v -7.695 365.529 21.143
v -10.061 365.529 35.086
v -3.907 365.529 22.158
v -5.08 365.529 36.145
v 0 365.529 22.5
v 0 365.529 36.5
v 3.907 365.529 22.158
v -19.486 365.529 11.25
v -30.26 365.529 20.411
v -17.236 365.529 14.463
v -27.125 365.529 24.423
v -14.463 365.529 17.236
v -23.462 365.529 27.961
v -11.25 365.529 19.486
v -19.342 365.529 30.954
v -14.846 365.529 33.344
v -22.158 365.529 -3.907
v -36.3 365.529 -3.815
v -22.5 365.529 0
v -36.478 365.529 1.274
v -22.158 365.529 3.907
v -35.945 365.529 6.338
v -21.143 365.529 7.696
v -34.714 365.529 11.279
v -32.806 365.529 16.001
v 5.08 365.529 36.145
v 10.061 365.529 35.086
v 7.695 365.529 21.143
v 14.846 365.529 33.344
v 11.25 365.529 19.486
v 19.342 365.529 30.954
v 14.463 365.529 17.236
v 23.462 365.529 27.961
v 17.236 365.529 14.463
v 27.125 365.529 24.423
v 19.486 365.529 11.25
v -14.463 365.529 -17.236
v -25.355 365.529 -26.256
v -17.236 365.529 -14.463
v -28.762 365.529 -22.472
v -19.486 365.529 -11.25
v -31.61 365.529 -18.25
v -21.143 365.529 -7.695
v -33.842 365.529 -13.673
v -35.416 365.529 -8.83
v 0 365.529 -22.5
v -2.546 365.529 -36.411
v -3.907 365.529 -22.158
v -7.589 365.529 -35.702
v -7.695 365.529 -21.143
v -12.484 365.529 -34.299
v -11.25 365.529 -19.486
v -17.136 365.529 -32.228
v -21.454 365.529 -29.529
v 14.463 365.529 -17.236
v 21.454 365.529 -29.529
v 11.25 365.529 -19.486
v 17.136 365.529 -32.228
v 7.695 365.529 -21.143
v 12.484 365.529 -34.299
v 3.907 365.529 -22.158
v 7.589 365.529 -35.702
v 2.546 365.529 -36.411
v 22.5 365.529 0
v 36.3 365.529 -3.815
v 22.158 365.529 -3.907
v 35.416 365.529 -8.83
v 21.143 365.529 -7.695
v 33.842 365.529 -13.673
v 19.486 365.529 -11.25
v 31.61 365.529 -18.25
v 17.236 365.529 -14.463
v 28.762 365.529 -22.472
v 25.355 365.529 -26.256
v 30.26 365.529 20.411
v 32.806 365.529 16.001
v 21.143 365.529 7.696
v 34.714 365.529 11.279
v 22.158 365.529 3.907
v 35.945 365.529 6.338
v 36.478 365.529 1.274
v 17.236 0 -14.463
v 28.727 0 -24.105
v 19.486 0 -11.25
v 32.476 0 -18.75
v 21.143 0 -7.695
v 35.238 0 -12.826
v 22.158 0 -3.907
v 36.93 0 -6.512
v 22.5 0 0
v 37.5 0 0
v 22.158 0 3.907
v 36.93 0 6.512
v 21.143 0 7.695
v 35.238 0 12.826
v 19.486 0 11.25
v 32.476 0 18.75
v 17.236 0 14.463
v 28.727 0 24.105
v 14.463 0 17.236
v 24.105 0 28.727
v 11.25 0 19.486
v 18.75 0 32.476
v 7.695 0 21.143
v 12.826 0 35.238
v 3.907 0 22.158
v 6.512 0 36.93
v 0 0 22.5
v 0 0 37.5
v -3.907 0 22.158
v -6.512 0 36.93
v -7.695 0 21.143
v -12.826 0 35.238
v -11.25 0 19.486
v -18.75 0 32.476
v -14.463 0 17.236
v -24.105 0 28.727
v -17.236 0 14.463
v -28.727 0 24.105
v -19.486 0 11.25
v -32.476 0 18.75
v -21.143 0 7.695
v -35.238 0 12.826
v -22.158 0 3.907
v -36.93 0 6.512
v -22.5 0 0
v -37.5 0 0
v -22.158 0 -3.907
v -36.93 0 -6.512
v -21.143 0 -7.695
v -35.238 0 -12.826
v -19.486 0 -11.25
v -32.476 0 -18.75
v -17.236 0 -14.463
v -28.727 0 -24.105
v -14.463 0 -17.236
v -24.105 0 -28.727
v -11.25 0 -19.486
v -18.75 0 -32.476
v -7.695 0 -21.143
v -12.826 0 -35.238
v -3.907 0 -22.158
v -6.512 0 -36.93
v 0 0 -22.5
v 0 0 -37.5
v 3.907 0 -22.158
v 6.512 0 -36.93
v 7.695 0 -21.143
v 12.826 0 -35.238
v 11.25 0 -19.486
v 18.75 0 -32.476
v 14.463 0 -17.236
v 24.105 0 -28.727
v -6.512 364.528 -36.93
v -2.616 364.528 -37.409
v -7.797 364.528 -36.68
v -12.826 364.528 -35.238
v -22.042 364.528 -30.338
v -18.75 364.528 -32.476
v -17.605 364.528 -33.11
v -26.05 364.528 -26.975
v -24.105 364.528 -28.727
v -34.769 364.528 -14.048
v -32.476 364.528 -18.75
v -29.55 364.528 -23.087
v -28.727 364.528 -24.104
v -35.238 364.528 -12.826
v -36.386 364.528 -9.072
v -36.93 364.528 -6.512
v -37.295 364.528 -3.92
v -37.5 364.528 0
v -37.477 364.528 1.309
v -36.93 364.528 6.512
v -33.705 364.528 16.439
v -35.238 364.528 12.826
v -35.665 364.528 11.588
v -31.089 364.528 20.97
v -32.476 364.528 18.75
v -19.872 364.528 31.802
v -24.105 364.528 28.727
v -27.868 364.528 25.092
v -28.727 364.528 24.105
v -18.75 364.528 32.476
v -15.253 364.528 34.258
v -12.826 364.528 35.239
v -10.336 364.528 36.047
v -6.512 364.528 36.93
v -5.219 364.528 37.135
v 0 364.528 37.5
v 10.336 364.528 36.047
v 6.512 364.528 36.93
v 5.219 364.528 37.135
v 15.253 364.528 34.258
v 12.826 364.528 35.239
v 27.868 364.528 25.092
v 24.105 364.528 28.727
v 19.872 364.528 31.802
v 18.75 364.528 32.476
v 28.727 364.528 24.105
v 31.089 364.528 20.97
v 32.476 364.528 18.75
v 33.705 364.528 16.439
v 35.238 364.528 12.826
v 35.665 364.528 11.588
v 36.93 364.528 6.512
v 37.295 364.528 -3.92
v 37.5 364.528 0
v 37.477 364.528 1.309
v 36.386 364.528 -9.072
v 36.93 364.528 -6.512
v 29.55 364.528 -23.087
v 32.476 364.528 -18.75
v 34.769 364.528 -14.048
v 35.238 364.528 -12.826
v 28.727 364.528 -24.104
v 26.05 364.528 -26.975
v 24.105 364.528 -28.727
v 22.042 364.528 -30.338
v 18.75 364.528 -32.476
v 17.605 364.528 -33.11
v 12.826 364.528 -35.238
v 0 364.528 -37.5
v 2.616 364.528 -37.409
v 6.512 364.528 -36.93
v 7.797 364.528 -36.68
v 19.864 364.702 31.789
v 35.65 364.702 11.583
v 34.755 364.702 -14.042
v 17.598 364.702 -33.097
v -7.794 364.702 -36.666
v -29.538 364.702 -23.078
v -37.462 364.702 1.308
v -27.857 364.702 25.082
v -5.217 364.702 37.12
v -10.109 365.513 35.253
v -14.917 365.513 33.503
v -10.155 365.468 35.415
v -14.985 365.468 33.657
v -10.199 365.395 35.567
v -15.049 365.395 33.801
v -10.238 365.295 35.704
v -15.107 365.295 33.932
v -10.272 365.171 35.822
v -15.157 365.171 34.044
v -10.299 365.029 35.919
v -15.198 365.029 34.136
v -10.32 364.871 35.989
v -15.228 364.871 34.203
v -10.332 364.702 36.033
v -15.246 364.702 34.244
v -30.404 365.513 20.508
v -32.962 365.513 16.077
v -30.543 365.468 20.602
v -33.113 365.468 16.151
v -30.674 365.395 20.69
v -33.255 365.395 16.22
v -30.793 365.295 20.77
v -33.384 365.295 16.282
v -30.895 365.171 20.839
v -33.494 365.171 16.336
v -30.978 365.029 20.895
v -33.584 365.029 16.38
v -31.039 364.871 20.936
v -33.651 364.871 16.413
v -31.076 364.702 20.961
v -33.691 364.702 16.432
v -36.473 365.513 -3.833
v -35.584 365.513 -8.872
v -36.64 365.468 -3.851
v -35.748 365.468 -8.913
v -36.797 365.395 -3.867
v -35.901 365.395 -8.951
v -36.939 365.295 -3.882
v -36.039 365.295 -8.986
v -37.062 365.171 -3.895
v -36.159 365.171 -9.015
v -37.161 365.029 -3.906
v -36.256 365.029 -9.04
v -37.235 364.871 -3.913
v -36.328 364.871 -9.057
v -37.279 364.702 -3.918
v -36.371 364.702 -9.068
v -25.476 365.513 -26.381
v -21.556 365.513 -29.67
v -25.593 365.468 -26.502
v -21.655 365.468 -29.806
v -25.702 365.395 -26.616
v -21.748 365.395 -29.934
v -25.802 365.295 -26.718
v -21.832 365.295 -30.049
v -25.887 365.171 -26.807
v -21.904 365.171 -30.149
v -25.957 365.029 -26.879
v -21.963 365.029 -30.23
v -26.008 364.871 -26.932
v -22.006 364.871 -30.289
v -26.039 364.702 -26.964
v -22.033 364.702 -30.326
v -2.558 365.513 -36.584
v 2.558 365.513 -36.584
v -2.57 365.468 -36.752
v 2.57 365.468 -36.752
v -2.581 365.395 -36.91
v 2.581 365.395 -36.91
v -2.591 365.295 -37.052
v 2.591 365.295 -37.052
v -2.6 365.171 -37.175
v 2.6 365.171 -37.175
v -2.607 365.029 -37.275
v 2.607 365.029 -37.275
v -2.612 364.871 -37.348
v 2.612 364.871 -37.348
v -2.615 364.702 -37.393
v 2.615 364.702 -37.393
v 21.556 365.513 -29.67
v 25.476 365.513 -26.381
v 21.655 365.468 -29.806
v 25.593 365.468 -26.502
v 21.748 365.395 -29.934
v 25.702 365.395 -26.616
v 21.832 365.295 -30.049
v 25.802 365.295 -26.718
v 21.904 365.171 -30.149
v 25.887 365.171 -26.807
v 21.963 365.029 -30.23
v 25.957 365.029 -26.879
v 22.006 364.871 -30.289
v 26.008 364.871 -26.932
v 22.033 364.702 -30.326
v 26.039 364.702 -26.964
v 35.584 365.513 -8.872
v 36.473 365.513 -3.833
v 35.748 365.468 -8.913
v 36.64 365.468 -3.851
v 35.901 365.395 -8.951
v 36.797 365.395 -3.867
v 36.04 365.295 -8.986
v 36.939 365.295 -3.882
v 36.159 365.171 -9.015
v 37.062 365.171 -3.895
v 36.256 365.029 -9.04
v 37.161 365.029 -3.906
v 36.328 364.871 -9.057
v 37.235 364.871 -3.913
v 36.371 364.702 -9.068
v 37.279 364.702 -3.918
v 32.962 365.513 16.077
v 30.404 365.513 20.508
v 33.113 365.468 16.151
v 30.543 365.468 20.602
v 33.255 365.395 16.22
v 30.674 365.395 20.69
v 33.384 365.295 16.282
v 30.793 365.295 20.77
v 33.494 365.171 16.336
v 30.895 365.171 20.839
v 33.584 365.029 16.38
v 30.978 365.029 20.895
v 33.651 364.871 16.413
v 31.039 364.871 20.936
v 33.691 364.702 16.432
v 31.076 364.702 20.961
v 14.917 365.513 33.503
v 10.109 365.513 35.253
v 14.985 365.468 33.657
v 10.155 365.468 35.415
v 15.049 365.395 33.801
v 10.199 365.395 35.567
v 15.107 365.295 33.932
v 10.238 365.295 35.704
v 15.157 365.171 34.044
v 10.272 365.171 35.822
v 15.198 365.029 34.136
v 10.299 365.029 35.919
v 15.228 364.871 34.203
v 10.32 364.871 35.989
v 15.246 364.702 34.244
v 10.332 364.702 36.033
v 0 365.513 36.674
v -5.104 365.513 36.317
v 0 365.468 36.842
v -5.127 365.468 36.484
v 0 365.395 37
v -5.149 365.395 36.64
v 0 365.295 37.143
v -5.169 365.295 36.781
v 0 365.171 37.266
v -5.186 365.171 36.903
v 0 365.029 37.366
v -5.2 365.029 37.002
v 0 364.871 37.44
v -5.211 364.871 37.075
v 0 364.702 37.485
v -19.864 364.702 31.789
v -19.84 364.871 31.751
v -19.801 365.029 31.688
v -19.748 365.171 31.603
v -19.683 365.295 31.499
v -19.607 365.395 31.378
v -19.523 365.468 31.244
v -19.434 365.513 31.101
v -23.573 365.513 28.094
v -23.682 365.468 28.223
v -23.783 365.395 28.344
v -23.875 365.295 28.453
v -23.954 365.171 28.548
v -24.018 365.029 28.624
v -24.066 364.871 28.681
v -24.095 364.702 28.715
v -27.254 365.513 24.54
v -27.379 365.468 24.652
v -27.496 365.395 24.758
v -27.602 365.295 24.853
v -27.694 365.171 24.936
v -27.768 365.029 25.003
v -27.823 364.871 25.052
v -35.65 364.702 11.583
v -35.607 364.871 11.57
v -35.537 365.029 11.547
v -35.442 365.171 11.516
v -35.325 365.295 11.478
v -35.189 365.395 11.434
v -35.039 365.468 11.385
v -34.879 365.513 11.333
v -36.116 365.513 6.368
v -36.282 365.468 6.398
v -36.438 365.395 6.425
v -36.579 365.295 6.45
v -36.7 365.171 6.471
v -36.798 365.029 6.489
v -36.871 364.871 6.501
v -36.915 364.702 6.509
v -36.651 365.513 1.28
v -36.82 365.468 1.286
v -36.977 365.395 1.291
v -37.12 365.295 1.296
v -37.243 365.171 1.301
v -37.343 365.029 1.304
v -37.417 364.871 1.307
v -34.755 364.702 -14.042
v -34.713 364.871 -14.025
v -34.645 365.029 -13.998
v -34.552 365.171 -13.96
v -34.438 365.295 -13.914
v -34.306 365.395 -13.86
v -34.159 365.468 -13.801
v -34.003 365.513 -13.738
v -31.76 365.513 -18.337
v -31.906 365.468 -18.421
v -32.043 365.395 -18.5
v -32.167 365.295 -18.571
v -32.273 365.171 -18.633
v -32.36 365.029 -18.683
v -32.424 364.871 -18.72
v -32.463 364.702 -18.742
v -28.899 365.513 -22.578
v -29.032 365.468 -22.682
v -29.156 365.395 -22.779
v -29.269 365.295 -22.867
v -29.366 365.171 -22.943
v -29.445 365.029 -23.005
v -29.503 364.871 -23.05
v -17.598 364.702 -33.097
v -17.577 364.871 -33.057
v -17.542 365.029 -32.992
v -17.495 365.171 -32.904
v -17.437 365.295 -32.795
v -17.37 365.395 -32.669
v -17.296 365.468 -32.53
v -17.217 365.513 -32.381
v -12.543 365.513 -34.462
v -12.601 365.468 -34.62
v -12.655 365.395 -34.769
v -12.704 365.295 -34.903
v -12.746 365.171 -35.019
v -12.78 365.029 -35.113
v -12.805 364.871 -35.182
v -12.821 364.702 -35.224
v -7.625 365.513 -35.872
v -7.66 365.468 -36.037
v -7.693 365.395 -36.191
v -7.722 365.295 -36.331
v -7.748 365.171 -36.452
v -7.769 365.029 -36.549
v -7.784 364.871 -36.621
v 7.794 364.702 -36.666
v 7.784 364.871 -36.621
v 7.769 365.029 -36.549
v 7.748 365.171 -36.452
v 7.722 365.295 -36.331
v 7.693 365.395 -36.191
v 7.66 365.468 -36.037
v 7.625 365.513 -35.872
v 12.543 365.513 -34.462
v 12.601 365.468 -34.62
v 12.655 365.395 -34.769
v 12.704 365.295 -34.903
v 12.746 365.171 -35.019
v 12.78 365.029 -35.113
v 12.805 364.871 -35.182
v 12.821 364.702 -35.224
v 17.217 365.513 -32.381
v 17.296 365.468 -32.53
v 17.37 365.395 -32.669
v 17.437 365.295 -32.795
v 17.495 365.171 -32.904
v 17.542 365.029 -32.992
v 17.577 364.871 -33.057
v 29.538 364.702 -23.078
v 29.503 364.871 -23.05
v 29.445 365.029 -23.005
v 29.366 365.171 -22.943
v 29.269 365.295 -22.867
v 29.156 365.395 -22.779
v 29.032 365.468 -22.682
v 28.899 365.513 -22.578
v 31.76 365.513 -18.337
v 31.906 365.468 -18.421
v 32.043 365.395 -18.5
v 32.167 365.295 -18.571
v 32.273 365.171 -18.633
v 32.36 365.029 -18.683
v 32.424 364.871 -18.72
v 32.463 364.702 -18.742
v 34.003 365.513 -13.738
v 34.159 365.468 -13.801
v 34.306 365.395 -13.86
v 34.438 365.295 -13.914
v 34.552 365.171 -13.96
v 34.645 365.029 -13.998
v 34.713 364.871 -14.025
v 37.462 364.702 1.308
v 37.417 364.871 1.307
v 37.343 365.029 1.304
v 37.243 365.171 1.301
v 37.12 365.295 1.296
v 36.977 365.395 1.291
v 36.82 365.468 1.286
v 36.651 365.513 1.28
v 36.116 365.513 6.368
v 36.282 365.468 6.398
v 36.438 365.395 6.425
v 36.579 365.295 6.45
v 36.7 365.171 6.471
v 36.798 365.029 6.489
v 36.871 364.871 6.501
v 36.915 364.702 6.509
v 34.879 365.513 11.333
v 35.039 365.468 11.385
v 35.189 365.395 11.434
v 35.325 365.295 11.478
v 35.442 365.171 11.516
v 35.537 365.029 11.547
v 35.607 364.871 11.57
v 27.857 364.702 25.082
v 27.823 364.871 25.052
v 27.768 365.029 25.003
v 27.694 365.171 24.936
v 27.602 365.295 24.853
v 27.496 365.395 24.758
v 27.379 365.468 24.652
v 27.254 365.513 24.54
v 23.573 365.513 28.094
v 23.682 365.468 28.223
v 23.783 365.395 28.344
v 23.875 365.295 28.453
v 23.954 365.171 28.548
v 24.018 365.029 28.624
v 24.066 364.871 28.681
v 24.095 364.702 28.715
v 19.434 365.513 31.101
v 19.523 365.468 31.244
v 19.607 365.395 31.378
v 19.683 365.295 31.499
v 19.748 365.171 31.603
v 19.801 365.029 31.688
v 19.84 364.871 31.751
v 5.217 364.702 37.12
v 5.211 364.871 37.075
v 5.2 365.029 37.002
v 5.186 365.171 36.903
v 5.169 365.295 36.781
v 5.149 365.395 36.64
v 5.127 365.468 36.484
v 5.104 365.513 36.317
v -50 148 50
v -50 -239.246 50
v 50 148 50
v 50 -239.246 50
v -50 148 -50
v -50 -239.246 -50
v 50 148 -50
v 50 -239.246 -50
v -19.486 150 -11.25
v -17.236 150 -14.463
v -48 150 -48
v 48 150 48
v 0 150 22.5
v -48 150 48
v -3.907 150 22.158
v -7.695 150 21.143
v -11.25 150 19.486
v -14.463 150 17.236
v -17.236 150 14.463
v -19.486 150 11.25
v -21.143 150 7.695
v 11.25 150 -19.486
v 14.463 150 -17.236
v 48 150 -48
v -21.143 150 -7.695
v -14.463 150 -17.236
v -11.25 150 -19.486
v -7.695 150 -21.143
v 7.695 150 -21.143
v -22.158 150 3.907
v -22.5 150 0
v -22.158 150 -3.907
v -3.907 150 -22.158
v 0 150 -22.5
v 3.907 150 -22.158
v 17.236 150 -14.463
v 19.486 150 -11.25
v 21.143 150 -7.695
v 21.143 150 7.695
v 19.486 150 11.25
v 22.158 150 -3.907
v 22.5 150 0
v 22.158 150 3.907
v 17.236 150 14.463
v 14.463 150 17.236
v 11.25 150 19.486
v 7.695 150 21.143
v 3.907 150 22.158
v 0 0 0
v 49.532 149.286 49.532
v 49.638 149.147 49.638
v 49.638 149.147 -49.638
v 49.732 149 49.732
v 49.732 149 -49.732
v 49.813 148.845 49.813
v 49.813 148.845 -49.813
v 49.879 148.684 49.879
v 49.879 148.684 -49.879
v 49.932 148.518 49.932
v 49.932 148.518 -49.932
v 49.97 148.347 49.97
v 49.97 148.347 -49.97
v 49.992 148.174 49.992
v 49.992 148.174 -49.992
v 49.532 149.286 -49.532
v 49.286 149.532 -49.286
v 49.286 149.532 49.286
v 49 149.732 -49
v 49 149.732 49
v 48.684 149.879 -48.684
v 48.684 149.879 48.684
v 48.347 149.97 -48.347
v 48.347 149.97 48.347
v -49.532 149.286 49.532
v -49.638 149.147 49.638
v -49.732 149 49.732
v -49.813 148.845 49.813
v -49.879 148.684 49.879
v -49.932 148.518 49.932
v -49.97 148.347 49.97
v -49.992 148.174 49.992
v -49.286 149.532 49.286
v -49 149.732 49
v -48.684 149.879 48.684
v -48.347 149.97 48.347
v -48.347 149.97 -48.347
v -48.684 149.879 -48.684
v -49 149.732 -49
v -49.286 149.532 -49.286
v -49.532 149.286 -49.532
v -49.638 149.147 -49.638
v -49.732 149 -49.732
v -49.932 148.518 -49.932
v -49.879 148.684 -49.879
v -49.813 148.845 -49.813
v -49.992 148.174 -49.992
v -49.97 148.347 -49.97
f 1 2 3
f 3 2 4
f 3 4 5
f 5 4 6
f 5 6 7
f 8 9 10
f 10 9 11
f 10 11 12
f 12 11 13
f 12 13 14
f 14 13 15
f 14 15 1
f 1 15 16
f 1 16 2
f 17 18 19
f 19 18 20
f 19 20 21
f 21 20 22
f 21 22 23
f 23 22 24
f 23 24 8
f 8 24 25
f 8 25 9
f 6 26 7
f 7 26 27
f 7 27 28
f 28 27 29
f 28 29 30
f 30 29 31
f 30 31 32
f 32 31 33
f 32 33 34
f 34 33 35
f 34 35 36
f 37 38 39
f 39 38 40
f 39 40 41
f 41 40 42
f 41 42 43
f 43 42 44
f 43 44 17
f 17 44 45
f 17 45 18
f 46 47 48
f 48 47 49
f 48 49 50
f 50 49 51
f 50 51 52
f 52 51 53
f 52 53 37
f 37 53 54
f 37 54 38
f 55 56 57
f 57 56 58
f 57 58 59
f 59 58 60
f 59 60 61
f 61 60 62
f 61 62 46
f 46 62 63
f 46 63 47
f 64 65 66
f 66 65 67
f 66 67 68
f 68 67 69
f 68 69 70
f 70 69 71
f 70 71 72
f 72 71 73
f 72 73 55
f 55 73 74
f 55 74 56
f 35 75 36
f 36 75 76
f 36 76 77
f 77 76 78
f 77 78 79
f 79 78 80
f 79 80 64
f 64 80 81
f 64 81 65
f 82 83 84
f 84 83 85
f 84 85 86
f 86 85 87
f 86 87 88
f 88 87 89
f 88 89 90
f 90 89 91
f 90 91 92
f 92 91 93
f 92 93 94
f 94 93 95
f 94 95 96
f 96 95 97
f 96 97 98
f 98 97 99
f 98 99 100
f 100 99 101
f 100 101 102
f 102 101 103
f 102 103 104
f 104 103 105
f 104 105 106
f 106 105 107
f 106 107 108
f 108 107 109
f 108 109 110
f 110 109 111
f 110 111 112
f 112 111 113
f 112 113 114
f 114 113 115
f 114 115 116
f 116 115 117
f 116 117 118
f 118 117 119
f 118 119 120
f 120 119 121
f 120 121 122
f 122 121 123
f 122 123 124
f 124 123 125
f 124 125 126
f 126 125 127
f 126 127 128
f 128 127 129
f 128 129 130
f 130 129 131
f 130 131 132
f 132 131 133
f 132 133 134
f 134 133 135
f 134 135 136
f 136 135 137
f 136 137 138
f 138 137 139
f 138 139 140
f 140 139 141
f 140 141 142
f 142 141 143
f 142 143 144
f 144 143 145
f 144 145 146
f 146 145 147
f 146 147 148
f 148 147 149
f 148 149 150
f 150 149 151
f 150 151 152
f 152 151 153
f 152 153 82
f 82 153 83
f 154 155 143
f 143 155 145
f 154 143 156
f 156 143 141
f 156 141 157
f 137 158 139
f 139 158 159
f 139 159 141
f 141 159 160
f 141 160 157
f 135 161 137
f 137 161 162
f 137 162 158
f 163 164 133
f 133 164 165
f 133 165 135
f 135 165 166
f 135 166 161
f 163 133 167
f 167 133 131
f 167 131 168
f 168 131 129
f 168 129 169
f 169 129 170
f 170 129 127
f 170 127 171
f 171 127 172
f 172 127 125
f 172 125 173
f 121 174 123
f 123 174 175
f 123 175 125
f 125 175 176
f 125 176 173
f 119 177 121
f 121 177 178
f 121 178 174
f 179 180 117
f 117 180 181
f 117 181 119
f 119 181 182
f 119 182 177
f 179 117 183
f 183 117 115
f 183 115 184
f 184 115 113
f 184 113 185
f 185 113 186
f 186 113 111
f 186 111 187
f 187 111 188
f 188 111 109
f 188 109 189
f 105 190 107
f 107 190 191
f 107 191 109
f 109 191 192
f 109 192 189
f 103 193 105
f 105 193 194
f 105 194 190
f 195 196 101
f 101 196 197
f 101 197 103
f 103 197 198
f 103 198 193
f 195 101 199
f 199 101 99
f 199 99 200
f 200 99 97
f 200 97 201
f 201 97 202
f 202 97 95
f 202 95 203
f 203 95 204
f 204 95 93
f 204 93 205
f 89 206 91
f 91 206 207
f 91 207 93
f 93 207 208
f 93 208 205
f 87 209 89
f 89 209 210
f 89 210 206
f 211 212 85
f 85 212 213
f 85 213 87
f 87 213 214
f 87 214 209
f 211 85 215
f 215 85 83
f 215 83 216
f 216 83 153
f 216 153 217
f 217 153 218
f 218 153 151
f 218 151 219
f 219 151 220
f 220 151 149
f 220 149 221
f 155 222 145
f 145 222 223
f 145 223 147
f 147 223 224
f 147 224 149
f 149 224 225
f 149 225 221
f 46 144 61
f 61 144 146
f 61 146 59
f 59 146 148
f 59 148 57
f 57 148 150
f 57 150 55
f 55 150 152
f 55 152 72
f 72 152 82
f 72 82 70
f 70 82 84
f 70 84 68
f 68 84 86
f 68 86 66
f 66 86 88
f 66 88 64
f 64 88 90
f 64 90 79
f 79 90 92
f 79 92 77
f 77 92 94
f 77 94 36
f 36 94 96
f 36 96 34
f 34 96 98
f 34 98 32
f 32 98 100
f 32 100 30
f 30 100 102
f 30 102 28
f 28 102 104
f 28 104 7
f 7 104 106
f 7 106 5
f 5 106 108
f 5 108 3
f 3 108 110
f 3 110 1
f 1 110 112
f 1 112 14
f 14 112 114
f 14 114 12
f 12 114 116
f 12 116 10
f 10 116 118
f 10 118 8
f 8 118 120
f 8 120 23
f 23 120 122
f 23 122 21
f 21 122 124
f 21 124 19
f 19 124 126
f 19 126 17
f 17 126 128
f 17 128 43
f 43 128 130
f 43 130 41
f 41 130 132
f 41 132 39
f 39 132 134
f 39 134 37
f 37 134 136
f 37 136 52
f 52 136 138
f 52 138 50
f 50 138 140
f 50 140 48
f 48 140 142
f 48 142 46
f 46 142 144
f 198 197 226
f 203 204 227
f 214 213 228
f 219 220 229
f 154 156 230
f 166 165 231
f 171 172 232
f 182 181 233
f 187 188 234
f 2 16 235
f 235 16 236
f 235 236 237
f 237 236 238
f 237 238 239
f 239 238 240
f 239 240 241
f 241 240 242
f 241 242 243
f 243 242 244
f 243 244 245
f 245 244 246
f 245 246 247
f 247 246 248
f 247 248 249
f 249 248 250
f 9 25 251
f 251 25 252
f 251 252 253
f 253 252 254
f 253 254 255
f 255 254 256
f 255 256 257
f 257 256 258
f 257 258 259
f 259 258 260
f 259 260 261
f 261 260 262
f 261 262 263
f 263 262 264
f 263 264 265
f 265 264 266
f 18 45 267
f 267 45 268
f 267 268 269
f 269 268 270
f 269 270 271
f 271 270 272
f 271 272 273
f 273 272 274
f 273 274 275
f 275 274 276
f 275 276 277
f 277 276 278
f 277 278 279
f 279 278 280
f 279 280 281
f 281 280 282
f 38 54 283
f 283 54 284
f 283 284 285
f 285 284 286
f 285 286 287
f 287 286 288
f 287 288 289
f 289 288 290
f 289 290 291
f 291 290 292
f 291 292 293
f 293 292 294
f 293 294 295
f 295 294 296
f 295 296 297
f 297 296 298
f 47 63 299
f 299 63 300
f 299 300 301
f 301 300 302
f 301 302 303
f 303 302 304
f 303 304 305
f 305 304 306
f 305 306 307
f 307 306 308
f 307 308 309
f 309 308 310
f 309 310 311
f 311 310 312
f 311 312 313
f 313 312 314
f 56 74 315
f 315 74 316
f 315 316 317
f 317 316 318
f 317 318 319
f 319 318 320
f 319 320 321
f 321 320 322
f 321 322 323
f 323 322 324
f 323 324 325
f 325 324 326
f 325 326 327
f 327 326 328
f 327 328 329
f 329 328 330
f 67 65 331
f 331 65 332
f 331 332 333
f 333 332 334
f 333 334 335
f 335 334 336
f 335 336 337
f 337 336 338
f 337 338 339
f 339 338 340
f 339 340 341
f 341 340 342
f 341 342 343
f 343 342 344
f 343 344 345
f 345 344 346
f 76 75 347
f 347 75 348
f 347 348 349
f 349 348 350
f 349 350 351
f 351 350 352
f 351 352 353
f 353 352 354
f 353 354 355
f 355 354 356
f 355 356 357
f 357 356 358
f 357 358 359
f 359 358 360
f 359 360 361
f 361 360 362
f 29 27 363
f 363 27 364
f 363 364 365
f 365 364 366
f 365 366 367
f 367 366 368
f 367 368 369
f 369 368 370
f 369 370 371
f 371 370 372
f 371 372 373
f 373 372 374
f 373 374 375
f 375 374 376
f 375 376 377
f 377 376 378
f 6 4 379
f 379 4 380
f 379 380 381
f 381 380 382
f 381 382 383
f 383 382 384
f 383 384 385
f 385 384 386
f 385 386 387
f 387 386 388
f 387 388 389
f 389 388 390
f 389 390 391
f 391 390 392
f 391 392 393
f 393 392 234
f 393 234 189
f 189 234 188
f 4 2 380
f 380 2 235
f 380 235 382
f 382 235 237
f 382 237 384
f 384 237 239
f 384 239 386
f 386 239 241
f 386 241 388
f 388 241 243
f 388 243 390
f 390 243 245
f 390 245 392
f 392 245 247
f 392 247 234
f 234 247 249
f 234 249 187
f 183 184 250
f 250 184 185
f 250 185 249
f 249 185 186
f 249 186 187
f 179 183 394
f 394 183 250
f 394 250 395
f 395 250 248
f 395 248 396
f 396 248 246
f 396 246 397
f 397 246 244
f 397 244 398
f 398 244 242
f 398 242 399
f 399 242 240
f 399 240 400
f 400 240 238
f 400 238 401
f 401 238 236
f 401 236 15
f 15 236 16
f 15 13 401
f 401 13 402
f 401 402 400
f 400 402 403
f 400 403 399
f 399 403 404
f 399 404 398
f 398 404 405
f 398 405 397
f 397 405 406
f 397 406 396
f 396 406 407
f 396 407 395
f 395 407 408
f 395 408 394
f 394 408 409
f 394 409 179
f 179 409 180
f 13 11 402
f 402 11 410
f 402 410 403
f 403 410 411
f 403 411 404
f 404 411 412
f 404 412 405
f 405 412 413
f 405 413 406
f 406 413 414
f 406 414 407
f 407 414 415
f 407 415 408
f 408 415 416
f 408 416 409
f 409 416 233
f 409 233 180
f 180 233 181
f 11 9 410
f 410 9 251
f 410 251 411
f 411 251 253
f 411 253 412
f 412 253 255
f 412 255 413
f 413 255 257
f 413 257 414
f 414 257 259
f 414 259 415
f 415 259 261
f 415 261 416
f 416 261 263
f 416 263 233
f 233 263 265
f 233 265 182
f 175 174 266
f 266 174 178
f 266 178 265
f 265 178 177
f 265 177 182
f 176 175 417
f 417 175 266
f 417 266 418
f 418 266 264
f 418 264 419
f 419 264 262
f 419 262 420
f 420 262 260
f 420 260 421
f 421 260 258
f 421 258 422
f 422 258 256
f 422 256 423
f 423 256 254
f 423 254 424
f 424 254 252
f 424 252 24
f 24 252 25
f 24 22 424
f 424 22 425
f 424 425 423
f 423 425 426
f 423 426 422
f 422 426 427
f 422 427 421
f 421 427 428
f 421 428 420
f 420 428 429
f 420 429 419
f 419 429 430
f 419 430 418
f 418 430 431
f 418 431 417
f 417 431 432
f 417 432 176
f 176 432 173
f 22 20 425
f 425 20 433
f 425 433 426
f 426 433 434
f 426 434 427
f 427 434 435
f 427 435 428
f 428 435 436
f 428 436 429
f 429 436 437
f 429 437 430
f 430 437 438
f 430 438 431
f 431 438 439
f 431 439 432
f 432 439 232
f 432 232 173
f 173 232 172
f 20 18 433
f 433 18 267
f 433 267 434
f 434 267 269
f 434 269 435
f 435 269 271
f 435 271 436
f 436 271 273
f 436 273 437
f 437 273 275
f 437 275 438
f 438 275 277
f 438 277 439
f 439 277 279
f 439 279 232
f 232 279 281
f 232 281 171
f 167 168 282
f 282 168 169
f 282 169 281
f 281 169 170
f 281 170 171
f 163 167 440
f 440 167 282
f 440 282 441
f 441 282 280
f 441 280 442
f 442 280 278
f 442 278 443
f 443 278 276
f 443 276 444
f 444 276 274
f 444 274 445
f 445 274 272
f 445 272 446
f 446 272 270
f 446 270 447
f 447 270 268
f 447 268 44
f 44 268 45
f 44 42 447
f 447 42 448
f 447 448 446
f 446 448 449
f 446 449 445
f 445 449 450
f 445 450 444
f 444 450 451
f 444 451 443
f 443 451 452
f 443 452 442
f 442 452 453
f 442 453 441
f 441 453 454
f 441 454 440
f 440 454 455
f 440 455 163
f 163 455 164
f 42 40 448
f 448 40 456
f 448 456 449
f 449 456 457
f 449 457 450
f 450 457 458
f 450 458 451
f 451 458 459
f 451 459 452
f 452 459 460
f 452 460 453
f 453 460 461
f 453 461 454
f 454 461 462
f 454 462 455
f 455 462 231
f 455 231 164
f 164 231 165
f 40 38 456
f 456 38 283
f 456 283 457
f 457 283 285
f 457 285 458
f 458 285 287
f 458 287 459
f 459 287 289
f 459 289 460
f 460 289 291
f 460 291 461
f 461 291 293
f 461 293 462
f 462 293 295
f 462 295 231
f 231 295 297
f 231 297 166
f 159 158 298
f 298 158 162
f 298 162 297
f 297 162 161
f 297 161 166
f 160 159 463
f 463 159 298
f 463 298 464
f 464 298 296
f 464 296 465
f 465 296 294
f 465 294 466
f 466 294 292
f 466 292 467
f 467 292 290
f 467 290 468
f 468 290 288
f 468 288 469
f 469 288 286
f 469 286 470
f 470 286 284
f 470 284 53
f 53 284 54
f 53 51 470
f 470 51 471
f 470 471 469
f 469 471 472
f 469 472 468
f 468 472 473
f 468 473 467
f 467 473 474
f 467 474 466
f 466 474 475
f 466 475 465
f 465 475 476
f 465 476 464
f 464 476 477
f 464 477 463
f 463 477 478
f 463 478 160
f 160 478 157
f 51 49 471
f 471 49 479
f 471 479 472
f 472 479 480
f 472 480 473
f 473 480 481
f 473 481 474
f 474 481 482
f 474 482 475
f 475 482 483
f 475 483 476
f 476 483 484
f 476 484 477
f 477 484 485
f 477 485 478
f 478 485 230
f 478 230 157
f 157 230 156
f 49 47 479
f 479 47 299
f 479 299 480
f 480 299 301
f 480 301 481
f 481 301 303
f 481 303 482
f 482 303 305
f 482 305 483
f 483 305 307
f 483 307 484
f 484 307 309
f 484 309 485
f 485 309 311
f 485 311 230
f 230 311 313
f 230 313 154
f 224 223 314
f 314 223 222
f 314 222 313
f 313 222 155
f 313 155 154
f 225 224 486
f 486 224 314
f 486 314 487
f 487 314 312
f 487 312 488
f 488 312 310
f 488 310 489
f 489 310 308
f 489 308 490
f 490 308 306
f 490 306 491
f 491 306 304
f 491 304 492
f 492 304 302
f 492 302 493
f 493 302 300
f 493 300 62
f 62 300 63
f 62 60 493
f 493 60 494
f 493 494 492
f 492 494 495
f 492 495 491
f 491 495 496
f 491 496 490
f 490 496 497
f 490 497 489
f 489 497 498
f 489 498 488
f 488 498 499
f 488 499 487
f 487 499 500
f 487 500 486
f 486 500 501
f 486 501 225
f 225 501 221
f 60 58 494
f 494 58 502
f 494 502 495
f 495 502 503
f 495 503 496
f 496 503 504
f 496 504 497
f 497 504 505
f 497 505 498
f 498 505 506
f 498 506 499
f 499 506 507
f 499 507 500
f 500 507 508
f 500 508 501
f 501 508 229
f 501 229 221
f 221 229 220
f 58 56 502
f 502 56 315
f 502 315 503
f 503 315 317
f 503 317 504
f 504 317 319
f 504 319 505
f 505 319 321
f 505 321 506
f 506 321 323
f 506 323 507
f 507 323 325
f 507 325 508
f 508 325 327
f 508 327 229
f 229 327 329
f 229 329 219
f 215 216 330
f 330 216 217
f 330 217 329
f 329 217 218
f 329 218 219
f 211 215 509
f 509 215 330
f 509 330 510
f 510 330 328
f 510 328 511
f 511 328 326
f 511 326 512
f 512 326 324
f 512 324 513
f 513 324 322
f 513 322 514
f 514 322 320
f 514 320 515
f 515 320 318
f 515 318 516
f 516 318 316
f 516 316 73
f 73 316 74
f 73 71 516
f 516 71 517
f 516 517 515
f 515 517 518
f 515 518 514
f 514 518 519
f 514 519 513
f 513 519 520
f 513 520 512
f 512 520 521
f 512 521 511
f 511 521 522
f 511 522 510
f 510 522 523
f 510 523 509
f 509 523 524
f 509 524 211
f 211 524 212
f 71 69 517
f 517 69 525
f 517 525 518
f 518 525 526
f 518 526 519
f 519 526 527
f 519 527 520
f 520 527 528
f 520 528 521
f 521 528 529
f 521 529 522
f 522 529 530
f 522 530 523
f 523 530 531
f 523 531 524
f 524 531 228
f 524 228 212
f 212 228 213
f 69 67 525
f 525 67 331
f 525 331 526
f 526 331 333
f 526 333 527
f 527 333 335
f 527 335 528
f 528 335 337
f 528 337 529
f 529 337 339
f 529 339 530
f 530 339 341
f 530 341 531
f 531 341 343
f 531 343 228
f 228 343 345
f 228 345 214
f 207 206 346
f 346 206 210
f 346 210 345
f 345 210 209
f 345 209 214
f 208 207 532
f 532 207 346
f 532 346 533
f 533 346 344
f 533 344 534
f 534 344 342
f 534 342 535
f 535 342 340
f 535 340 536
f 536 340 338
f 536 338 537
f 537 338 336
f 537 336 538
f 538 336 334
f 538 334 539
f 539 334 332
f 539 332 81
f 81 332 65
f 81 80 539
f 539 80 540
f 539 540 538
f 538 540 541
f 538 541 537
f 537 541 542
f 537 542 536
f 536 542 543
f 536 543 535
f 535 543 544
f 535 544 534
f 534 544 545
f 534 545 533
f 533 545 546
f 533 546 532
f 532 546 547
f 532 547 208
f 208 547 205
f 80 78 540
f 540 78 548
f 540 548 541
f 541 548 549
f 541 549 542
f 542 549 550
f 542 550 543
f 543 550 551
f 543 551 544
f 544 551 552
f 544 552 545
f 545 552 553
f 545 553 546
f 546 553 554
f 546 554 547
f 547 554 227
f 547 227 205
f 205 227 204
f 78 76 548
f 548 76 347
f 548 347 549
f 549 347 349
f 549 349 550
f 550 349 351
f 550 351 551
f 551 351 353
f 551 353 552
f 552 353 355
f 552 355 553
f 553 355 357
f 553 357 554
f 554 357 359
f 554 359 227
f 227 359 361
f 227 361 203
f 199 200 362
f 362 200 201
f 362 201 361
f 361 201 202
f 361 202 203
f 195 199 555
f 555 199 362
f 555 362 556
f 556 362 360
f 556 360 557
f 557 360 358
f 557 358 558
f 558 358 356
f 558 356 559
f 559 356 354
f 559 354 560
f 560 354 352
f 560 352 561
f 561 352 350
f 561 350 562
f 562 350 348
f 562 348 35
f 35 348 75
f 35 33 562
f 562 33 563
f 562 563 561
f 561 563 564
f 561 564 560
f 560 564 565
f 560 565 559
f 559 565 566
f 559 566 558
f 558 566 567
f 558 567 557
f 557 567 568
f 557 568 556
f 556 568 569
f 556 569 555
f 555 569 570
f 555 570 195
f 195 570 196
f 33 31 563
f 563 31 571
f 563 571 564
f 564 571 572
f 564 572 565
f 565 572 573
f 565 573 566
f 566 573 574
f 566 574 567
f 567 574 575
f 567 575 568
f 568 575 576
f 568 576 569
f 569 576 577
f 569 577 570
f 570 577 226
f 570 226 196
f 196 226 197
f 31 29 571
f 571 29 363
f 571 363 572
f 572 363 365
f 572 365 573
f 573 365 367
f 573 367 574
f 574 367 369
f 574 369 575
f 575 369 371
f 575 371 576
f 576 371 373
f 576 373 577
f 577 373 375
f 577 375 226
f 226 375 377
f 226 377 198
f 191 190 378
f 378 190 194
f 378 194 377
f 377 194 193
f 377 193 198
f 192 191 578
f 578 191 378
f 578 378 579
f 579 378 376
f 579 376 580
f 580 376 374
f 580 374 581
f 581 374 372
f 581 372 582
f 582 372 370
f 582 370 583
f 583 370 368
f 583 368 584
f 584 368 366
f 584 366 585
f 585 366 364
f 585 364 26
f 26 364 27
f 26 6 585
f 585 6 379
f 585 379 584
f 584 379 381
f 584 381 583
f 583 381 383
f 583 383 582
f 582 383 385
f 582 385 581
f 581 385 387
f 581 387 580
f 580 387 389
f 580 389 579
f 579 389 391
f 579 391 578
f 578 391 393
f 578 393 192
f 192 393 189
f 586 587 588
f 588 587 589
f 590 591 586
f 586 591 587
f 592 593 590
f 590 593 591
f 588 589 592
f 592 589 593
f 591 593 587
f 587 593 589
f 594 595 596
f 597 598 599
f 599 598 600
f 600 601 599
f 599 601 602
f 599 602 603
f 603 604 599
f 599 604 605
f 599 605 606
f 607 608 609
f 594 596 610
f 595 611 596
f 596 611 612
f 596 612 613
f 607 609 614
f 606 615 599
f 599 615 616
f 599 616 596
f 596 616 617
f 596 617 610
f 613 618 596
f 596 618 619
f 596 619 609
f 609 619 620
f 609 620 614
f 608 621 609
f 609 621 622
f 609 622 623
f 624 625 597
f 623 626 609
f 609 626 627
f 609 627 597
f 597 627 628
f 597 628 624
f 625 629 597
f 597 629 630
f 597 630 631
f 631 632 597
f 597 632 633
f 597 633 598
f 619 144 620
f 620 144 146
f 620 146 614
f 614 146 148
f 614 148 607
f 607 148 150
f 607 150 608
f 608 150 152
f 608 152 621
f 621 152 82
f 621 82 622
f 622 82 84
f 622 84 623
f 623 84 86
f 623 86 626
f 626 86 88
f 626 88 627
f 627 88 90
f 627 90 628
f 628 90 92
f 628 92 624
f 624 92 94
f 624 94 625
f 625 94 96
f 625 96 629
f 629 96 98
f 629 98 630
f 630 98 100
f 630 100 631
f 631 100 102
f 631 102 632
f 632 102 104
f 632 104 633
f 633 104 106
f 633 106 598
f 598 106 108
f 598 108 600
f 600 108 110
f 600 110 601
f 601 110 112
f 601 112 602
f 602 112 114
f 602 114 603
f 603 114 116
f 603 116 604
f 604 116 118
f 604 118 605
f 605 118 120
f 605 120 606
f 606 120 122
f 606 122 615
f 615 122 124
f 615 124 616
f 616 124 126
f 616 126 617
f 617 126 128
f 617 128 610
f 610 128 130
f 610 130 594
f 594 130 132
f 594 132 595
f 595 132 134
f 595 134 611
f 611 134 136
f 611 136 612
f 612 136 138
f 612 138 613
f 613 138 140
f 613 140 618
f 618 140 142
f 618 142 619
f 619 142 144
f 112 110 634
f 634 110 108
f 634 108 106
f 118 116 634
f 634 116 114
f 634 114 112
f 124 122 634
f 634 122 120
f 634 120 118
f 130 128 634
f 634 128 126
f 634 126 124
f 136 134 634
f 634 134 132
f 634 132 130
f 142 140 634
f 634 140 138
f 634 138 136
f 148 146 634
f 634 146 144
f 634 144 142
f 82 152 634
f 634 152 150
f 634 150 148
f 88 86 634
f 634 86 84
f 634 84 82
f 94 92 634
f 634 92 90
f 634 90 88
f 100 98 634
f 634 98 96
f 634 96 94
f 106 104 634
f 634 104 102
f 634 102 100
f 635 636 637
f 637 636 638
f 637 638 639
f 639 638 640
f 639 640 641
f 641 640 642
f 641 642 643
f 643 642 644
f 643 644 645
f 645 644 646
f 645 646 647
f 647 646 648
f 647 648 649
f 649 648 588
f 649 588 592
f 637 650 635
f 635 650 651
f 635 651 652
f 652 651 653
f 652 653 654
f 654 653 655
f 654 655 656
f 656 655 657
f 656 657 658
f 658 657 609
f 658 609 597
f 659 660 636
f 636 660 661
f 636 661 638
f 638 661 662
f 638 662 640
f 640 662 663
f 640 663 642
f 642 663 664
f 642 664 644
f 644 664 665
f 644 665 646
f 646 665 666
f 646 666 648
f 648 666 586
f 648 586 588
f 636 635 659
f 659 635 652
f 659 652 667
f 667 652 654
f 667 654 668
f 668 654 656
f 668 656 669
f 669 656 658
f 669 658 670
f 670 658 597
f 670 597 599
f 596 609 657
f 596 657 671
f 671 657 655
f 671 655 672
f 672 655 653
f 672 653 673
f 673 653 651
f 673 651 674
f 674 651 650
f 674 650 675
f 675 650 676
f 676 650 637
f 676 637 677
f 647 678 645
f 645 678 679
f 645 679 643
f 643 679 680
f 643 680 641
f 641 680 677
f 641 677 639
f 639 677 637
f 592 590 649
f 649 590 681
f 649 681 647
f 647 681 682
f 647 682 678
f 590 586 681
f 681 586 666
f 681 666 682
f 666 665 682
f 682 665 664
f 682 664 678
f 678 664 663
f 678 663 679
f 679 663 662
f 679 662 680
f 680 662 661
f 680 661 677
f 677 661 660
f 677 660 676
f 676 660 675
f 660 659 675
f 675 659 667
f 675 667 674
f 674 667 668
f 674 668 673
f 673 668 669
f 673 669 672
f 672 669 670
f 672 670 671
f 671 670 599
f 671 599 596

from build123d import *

# Parameters (mm, degrees)
BOSS_EXTRUDE2_DEPTH      = 150
BOSS_EXTRUDE2_DEPTH_BACK = 239.246198725
SKETCH1_W                = 100
SKETCH1_H                = 100
SKETCH1_4_R              = 37.5
SKETCH1_4_R_2            = 22.5
BOSS_EXTRUDE3_DEPTH      = 365.528532985
SKETCH1_5_R              = 22.5
CUT_EXTRUDE1_DEPTH       = 215
FILLET2_R                = 2
FILLET3_R                = 1


with BuildPart() as part:
    # Sketch1 → Boss-Extrude2 (new, two sides: drawn at the far end of the back side and taken through both)
    with BuildSketch(Plane(origin=(0, 0, 0), x_dir=(1, 0, 0), z_dir=(0, 1, 0)).offset(-BOSS_EXTRUDE2_DEPTH_BACK)):
        Rectangle(SKETCH1_W, SKETCH1_H)
    extrude(amount=BOSS_EXTRUDE2_DEPTH + BOSS_EXTRUDE2_DEPTH_BACK)

    # Sketch1<5> → Cut-Extrude1 (cut)
    with BuildSketch(Plane(origin=(0, 0, 0), x_dir=(1, 0, 0), z_dir=(0, 1, 0))):
        Circle(SKETCH1_5_R)
    extrude(amount=CUT_EXTRUDE1_DEPTH, mode=Mode.SUBTRACT)

    # Fillet2
    fillet2_edges = [part.edges().sort_by_distance(p)[0] for p in [
        (-50, 150, 0),
        (0, 150, 50),
        (50, 150, 0),
        (0, 150, -50),
    ]]
    fillet(fillet2_edges, radius=FILLET2_R)


with BuildPart() as body_2:
    # Sketch1<4> → Boss-Extrude3 (new body)
    with BuildSketch(Plane(origin=(0, 0, 0), x_dir=(1, 0, 0), z_dir=(0, 1, 0))):
        Circle(SKETCH1_4_R)
        Circle(SKETCH1_4_R_2, mode=Mode.SUBTRACT)
    extrude(amount=BOSS_EXTRUDE3_DEPTH)

    # Fillet3
    fillet3_edges = [body_2.edges().sort_by_distance(p)[0] for p in [
        (-37.5, 365.528532985, 0),
    ]]
    fillet(fillet3_edges, radius=FILLET3_R)


solid = Compound([part.part, body_2.part])
